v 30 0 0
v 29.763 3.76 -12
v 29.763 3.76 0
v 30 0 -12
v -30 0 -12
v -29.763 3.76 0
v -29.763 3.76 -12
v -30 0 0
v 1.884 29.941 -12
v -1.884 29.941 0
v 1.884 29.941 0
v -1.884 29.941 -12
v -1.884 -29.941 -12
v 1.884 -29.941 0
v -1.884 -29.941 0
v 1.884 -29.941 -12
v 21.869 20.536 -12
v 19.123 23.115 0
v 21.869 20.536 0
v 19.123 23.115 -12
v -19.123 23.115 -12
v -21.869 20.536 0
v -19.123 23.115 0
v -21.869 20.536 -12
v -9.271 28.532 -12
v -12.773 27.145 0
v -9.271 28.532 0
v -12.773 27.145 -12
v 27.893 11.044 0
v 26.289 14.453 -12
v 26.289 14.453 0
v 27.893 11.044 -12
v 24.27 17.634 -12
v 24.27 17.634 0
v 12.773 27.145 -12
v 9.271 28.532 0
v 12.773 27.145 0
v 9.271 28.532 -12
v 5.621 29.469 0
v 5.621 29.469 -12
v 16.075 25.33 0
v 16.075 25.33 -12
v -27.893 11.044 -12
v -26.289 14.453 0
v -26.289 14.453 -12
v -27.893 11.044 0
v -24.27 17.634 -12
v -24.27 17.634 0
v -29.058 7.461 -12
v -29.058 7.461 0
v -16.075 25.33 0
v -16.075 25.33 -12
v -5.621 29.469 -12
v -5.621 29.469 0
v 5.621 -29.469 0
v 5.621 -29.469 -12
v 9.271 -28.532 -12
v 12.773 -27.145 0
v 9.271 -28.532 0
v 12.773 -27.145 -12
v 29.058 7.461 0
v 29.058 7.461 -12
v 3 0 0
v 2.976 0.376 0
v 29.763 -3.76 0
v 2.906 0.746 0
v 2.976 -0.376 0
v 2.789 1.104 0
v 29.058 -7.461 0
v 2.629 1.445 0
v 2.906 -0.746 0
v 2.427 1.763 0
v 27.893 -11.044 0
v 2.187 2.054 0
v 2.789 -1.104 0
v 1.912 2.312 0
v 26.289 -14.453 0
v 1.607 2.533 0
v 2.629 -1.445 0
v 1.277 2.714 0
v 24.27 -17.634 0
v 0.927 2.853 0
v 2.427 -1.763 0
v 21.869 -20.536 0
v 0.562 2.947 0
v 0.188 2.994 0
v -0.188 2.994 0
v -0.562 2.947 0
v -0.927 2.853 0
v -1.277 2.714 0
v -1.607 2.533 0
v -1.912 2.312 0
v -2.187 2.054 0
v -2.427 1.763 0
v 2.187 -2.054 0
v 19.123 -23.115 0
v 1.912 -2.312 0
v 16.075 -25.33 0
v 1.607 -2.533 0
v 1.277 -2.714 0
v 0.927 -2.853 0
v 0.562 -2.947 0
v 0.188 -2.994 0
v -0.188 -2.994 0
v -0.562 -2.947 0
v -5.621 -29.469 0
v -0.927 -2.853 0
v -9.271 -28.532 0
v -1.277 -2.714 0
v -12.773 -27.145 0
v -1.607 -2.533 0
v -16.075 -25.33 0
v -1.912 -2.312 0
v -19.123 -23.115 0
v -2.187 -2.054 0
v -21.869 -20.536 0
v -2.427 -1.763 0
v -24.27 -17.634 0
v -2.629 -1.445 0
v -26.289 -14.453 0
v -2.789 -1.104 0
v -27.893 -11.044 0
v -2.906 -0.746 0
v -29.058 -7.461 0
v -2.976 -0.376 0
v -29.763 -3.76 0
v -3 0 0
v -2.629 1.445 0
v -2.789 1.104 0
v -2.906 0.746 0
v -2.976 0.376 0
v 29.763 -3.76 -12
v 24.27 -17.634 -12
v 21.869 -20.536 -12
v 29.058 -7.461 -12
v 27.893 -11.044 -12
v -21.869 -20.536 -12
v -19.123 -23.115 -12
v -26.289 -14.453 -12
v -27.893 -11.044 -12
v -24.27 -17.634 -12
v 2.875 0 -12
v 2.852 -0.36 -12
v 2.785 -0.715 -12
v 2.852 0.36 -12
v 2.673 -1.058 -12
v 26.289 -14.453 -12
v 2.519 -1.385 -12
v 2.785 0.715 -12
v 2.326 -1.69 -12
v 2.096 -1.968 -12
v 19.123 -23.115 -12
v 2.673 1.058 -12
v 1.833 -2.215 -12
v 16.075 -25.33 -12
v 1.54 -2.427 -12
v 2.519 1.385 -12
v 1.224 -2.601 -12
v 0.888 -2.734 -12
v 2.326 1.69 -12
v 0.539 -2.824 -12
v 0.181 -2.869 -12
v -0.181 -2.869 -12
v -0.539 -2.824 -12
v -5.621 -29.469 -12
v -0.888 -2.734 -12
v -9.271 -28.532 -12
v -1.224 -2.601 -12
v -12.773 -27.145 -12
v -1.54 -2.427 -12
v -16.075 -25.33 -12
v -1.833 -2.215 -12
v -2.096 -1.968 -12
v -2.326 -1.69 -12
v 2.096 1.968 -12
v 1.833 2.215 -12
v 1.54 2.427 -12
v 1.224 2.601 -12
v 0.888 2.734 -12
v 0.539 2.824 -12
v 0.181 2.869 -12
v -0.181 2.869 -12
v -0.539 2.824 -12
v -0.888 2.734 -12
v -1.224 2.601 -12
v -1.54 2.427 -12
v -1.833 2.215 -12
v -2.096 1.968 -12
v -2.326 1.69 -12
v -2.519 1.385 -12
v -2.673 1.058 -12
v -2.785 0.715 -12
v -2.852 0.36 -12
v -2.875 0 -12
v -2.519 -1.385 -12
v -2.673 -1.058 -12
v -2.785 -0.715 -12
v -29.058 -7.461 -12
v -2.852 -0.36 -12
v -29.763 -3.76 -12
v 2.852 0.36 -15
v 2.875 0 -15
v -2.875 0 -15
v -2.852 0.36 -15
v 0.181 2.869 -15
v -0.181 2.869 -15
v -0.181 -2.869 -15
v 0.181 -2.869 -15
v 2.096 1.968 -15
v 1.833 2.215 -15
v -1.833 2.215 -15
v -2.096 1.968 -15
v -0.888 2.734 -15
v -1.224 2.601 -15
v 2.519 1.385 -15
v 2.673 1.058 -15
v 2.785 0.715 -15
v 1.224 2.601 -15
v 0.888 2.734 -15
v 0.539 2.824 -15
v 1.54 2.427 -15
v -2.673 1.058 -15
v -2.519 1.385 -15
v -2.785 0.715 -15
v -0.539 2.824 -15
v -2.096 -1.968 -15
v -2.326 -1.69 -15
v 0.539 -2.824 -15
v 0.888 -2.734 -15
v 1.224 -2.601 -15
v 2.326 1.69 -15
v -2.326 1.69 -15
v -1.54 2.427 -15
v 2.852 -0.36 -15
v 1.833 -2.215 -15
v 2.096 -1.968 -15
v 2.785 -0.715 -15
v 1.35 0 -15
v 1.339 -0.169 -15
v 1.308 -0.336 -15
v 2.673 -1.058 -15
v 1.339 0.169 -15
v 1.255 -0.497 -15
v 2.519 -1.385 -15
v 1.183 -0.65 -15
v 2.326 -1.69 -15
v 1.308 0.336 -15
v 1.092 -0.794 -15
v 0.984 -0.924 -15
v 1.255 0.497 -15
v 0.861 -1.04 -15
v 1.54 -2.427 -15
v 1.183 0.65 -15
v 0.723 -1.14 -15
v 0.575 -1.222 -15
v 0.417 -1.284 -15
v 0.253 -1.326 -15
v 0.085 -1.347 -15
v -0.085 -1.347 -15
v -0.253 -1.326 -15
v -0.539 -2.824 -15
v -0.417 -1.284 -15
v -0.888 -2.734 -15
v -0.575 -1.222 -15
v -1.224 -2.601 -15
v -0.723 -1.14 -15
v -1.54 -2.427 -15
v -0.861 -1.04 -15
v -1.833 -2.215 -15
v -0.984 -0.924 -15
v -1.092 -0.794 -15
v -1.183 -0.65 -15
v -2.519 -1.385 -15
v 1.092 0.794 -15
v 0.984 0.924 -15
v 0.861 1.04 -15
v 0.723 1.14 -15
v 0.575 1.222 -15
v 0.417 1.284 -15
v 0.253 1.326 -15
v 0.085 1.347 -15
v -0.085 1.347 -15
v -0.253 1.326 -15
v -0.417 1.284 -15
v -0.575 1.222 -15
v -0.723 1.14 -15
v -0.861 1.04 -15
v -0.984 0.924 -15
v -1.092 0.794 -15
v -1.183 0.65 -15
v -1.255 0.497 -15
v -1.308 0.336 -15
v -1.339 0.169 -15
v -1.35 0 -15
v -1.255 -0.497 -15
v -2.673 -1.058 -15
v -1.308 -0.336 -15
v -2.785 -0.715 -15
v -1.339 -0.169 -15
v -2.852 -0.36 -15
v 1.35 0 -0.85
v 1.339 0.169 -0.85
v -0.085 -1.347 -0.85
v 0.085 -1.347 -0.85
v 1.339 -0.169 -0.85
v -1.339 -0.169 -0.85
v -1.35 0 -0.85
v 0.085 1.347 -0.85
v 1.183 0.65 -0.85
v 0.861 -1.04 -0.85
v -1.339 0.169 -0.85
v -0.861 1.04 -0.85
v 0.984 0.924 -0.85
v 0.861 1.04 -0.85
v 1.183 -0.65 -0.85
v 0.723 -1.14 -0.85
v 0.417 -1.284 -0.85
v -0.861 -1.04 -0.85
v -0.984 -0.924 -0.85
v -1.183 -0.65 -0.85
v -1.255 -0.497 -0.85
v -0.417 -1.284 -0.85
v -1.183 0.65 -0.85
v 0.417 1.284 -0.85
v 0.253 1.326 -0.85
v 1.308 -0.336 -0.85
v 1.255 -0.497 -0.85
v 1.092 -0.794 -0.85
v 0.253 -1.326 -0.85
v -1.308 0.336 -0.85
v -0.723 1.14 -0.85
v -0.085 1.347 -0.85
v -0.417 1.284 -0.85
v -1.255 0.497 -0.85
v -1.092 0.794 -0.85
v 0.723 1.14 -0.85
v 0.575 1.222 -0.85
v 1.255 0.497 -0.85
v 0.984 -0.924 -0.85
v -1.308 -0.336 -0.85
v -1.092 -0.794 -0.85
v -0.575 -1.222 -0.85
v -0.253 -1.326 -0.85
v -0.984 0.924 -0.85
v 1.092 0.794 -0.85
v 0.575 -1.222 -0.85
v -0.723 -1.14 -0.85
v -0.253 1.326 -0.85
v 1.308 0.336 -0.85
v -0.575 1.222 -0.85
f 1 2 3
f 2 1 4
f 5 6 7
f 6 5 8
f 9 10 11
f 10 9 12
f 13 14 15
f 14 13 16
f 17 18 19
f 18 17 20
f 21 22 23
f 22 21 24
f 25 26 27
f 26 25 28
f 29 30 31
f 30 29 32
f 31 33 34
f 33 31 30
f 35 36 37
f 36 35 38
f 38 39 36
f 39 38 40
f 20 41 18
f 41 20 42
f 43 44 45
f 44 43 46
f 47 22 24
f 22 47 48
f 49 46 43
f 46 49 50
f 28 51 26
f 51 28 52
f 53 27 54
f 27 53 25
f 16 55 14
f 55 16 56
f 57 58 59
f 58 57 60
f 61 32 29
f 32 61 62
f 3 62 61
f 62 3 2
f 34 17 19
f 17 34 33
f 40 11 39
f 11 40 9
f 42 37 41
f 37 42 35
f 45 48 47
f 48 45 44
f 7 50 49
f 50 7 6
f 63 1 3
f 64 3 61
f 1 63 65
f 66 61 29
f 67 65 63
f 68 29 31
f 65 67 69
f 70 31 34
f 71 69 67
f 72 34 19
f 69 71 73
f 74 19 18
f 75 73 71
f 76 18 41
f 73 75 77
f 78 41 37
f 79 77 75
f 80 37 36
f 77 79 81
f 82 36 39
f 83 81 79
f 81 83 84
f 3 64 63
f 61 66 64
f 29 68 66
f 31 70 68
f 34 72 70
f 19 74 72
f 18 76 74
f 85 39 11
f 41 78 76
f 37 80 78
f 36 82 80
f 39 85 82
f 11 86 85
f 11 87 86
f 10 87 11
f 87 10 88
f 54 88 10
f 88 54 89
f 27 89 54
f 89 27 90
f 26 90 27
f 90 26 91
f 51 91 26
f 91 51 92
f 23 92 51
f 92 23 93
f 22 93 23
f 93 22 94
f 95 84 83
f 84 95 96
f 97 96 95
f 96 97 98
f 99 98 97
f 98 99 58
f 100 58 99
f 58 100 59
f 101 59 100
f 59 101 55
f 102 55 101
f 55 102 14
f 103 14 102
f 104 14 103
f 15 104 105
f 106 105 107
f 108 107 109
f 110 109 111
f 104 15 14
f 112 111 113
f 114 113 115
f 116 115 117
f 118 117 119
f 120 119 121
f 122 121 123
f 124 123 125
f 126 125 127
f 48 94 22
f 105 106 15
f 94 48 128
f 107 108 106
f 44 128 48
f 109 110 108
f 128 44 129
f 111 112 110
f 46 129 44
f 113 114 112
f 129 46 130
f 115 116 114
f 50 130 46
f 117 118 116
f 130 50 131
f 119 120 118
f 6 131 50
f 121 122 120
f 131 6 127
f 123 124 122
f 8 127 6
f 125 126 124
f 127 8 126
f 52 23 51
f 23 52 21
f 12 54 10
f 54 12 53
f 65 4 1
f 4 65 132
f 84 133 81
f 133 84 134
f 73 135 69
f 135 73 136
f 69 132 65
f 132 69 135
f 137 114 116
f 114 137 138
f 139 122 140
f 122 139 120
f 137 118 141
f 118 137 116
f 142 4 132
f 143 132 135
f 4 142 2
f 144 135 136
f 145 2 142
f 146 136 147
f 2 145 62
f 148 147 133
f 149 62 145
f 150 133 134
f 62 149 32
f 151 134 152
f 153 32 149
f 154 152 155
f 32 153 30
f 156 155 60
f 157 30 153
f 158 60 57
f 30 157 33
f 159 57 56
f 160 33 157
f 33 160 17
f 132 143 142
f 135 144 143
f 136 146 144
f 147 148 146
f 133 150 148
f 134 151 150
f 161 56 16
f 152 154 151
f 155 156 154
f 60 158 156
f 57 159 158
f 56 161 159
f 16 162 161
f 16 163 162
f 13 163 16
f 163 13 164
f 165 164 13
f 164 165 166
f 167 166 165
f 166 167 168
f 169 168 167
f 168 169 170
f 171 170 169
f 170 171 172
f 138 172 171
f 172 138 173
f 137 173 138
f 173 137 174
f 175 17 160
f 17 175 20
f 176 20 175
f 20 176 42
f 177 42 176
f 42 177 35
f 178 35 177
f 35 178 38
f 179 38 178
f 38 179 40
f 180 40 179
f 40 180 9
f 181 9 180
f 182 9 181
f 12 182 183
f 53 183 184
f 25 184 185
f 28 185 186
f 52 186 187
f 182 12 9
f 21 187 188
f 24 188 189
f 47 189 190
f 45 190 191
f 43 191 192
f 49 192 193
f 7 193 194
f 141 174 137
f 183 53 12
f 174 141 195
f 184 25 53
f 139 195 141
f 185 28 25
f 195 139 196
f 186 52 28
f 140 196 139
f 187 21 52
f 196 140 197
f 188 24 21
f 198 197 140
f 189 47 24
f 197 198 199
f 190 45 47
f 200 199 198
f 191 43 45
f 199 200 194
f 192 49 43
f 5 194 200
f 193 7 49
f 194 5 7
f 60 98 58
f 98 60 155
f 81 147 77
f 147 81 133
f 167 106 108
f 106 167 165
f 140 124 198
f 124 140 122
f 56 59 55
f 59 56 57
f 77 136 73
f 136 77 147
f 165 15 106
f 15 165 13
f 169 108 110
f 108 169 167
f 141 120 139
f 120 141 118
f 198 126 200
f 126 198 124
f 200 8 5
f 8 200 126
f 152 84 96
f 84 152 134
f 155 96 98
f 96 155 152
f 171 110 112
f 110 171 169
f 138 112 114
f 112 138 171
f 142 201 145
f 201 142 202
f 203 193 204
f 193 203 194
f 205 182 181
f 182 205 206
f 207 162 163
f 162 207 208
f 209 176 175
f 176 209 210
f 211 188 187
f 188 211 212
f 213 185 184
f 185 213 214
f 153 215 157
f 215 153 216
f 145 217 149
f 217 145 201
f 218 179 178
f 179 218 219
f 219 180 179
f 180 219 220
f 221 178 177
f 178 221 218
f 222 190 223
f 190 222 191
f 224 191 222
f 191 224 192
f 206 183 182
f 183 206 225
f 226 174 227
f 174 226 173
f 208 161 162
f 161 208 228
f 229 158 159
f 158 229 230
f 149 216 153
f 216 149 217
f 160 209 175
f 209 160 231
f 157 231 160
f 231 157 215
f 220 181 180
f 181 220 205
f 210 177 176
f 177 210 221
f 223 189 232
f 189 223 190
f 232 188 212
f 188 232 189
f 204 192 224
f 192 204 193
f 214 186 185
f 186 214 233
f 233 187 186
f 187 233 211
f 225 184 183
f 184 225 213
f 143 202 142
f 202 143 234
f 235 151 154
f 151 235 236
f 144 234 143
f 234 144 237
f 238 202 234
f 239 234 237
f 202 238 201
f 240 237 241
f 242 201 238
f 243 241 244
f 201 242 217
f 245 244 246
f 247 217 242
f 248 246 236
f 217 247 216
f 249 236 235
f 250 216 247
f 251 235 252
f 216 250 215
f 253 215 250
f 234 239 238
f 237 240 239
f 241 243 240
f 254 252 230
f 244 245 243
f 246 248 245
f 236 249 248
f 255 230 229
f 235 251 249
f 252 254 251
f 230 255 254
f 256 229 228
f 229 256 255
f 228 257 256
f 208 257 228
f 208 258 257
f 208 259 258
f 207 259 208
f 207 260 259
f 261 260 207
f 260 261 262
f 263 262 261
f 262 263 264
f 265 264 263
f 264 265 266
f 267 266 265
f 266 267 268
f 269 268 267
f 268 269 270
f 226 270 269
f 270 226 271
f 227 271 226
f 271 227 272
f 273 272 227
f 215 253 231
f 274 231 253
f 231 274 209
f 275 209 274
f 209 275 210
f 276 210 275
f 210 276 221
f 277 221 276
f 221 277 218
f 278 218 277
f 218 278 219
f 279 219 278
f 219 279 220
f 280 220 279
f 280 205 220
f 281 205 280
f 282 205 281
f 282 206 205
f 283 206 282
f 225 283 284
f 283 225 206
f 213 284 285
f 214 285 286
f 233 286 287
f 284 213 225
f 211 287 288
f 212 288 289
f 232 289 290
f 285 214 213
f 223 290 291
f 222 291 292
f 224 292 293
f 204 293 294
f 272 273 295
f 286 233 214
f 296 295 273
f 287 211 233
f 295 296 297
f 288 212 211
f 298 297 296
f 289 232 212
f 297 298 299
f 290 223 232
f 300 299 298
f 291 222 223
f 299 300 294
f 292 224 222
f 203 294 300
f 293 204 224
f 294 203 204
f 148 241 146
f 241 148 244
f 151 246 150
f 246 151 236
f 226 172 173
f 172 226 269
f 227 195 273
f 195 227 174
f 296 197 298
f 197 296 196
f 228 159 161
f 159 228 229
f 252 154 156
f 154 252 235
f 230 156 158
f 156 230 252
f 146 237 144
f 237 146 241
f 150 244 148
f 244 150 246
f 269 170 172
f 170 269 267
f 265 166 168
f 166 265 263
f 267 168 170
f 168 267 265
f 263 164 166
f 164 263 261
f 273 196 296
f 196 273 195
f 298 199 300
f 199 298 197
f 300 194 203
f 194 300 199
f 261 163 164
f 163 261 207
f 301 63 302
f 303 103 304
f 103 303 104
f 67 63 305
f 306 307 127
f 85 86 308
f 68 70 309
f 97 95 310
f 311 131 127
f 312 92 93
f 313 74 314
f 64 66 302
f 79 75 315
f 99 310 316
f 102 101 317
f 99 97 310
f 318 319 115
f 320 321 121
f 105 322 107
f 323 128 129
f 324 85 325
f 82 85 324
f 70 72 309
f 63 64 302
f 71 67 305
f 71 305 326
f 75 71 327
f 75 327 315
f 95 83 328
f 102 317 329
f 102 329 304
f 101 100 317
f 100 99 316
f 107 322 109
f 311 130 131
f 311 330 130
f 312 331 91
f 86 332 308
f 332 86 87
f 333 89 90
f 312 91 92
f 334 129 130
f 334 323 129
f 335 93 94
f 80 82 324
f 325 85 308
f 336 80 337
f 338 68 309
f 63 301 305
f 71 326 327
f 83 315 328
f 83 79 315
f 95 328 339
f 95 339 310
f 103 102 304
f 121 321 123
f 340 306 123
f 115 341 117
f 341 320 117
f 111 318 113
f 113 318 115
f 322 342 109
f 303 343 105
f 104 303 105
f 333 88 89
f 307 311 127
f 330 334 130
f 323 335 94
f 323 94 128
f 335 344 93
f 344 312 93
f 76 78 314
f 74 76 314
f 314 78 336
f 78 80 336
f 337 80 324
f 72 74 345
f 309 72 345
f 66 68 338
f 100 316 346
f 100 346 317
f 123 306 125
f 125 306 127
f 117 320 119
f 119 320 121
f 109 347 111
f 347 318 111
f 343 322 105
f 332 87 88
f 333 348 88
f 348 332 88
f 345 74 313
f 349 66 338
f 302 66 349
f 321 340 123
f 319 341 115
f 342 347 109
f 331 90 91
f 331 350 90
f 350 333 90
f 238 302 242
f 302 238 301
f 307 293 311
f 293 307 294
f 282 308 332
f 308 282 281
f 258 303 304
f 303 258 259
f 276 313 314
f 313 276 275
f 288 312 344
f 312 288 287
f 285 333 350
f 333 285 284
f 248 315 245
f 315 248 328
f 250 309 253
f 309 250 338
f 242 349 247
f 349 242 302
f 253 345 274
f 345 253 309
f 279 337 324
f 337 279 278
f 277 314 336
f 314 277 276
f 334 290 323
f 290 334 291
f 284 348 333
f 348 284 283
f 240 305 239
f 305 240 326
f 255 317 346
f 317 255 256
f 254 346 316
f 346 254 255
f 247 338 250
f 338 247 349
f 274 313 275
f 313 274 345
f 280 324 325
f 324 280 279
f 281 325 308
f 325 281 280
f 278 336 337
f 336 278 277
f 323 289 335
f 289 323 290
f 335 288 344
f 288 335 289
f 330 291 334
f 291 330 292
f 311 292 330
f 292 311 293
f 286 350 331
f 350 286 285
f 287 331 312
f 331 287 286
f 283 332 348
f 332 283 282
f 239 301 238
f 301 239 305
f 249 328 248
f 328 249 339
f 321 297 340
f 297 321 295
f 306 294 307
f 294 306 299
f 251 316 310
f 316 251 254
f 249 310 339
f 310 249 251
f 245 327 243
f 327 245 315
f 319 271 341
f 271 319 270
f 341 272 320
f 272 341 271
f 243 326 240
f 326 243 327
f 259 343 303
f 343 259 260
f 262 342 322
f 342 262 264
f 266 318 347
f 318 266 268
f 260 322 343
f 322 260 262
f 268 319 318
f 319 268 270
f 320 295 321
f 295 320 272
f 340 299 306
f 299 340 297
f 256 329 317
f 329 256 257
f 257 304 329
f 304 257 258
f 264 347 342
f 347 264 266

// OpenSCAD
$fn = 50;


difference() {
	union() {
		translate(v = [0, 0, -12.0000000000]) {
			cylinder(h = 12, r = 30.0000000000);
		}
		translate(v = [0, 0, -15.0000000000]) {
			cylinder(h = 15, r = 2.8750000000);
		}
	}
	union() {
		translate(v = [0, 0, 0]) {
			rotate(a = [0, 0, 0]) {
				difference() {
					union() {
						translate(v = [0, 0, -15.0000000000]) {
							cylinder(h = 15, r = 1.0000000000);
						}
						translate(v = [0, 0, -0.8500000000]) {
							cylinder(h = 0.8500000000, r1 = 1.3500000000, r2 = 3.0000000000);
						}
						translate(v = [0, 0, -15.0000000000]) {
							cylinder(h = 15, r = 1.3500000000);
						}
						translate(v = [0, 0, -15.0000000000]) {
							cylinder(h = 15, r = 1.0000000000);
						}
					}
					union();
				}
			}
		}
	}
}
